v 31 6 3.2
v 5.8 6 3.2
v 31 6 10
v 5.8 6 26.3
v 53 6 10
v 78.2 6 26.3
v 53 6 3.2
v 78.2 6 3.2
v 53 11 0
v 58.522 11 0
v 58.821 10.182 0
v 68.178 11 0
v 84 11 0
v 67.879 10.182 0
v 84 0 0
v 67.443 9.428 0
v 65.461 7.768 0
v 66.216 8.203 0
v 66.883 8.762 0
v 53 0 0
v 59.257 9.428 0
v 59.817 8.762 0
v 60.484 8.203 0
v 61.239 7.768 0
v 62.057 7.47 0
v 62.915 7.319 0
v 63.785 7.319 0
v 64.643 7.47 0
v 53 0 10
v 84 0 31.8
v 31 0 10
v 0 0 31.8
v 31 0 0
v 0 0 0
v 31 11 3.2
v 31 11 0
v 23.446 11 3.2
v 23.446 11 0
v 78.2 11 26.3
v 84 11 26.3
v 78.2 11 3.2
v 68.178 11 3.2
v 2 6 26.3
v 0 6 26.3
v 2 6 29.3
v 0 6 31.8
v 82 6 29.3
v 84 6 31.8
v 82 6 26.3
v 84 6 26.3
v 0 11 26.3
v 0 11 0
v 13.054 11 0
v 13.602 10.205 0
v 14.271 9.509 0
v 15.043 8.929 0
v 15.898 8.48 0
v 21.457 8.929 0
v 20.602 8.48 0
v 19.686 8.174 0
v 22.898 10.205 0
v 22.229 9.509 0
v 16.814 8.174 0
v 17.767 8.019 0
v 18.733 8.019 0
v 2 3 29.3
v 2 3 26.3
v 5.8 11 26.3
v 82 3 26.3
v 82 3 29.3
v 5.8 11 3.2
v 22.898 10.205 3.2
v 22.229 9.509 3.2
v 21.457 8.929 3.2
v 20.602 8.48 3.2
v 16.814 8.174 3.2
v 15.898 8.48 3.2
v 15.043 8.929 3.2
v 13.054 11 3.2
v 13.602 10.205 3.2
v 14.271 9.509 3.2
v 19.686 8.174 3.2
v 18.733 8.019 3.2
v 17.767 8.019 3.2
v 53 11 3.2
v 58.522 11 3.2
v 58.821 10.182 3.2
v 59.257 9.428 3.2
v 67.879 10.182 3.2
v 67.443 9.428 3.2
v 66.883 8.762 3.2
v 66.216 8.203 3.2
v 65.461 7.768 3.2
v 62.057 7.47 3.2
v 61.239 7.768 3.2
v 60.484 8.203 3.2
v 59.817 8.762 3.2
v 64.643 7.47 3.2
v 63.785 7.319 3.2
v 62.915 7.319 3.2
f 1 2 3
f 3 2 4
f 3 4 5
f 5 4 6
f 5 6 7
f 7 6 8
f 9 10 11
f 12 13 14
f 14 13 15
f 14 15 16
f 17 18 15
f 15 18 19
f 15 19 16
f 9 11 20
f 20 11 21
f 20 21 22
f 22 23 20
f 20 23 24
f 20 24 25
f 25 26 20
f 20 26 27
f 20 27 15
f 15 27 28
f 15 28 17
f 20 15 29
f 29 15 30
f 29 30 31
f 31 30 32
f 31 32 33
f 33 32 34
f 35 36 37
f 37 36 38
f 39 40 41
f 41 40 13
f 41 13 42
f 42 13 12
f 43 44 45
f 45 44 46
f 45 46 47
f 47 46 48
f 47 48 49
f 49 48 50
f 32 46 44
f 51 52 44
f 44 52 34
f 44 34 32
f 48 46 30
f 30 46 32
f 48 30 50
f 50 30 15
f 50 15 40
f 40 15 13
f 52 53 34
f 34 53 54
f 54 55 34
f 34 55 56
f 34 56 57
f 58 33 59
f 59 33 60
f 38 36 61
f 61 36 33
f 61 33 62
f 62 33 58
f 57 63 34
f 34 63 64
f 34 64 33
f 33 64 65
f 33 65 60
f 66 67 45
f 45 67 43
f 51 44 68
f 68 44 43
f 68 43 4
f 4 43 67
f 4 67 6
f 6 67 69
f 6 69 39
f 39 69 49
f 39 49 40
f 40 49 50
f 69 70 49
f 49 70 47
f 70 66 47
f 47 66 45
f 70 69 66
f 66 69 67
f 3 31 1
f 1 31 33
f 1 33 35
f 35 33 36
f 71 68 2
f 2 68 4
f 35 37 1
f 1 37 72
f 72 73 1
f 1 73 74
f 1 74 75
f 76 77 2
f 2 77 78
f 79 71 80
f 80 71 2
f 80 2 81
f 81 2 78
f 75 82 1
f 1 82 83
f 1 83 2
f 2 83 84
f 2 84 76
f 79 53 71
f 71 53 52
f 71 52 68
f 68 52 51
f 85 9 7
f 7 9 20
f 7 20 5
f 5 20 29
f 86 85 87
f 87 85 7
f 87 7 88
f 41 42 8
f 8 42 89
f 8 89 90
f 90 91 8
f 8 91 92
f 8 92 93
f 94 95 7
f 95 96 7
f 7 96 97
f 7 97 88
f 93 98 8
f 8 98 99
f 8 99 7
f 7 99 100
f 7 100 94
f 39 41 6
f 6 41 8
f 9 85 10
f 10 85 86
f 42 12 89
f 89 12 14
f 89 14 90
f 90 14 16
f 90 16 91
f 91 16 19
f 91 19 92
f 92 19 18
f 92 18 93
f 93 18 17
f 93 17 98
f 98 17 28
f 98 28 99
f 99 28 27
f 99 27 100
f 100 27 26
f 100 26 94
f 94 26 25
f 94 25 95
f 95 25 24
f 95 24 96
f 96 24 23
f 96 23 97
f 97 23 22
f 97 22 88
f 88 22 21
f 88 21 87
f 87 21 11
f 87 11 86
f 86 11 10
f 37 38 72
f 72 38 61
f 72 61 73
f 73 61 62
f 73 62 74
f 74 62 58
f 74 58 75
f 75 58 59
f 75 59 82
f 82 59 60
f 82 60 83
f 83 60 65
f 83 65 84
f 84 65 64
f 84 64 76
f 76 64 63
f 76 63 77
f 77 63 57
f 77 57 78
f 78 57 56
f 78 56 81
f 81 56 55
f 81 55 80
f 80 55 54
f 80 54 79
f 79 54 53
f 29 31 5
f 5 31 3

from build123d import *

# Parameters (mm, degrees)
SKETCH_1_W          = 84
SKETCH_1_H          = 31.8
EXTRUDE_1_DEPTH     = 6
SKETCH_2_W          = 80
SKETCH_2_H          = 3
CUT_EXTRUDE_1_DEPTH = 3
EXTRUDE_2_DEPTH     = 5
SKETCH_4_R          = 5
SKETCH_4_R_2        = 6
CUT_EXTRUDE_2_DEPTH = 91.488894346
SKETCH_3_3_W        = 22
SKETCH_3_3_H        = 10
CUT_EXTRUDE_3_DEPTH = 91.0179982


with BuildPart() as part:
    # 草图1 → 凸台-拉伸1 (new body)
    with BuildSketch(Plane(origin=(0, 0, 0), x_dir=(1, 0, 0), z_dir=(0, 1, 0))):
        with Locations((42, -15.9)):
            Rectangle(SKETCH_1_W, SKETCH_1_H)
    extrude(amount=EXTRUDE_1_DEPTH)

    # 草图2 → 切除-拉伸1 (cut)
    with BuildSketch(Plane(origin=(0, 6, 0), x_dir=(1, 0, 0), z_dir=(0, 1, 0))):
        with Locations((42, -27.8)):
            Rectangle(SKETCH_2_W, SKETCH_2_H)
    extrude(amount=-CUT_EXTRUDE_1_DEPTH, mode=Mode.SUBTRACT)

    # 草图3 → 凸台-拉伸2 (add)
    with BuildSketch(Plane(origin=(0, 6, 0), x_dir=(1, 0, 0), z_dir=(0, 1, 0))):
        Polygon((31, 0), (0, 0), (0, -26.3), (5.8, -26.3), (5.8, -3.2), (31, -3.2), align=None)
        Polygon((84, 0), (53, 0), (53, -3.2), (78.2, -3.2), (78.2, -26.3), (84, -26.3), align=None)
    extrude(amount=EXTRUDE_2_DEPTH)

    # 草图4 → 切除-拉伸2 (cut, through all)
    with BuildSketch(Plane(origin=(0, 0, 0), x_dir=(-1, 0, 0), z_dir=(0, 0, -1))):
        with Locations((-63.35, 12.3)):
            Circle(SKETCH_4_R)
        with Locations((-18.25, 14)):
            Circle(SKETCH_4_R_2)
    extrude(amount=-CUT_EXTRUDE_2_DEPTH, mode=Mode.SUBTRACT)

    # 草图3<3> → 切除-拉伸3 (cut, through all)
    with BuildSketch(Plane(origin=(0, 6, 0), x_dir=(1, 0, 0), z_dir=(0, 1, 0))):
        with Locations((42, -5)):
            Rectangle(SKETCH_3_3_W, SKETCH_3_3_H)
    extrude(amount=-CUT_EXTRUDE_3_DEPTH, mode=Mode.SUBTRACT)


solid = part.part
